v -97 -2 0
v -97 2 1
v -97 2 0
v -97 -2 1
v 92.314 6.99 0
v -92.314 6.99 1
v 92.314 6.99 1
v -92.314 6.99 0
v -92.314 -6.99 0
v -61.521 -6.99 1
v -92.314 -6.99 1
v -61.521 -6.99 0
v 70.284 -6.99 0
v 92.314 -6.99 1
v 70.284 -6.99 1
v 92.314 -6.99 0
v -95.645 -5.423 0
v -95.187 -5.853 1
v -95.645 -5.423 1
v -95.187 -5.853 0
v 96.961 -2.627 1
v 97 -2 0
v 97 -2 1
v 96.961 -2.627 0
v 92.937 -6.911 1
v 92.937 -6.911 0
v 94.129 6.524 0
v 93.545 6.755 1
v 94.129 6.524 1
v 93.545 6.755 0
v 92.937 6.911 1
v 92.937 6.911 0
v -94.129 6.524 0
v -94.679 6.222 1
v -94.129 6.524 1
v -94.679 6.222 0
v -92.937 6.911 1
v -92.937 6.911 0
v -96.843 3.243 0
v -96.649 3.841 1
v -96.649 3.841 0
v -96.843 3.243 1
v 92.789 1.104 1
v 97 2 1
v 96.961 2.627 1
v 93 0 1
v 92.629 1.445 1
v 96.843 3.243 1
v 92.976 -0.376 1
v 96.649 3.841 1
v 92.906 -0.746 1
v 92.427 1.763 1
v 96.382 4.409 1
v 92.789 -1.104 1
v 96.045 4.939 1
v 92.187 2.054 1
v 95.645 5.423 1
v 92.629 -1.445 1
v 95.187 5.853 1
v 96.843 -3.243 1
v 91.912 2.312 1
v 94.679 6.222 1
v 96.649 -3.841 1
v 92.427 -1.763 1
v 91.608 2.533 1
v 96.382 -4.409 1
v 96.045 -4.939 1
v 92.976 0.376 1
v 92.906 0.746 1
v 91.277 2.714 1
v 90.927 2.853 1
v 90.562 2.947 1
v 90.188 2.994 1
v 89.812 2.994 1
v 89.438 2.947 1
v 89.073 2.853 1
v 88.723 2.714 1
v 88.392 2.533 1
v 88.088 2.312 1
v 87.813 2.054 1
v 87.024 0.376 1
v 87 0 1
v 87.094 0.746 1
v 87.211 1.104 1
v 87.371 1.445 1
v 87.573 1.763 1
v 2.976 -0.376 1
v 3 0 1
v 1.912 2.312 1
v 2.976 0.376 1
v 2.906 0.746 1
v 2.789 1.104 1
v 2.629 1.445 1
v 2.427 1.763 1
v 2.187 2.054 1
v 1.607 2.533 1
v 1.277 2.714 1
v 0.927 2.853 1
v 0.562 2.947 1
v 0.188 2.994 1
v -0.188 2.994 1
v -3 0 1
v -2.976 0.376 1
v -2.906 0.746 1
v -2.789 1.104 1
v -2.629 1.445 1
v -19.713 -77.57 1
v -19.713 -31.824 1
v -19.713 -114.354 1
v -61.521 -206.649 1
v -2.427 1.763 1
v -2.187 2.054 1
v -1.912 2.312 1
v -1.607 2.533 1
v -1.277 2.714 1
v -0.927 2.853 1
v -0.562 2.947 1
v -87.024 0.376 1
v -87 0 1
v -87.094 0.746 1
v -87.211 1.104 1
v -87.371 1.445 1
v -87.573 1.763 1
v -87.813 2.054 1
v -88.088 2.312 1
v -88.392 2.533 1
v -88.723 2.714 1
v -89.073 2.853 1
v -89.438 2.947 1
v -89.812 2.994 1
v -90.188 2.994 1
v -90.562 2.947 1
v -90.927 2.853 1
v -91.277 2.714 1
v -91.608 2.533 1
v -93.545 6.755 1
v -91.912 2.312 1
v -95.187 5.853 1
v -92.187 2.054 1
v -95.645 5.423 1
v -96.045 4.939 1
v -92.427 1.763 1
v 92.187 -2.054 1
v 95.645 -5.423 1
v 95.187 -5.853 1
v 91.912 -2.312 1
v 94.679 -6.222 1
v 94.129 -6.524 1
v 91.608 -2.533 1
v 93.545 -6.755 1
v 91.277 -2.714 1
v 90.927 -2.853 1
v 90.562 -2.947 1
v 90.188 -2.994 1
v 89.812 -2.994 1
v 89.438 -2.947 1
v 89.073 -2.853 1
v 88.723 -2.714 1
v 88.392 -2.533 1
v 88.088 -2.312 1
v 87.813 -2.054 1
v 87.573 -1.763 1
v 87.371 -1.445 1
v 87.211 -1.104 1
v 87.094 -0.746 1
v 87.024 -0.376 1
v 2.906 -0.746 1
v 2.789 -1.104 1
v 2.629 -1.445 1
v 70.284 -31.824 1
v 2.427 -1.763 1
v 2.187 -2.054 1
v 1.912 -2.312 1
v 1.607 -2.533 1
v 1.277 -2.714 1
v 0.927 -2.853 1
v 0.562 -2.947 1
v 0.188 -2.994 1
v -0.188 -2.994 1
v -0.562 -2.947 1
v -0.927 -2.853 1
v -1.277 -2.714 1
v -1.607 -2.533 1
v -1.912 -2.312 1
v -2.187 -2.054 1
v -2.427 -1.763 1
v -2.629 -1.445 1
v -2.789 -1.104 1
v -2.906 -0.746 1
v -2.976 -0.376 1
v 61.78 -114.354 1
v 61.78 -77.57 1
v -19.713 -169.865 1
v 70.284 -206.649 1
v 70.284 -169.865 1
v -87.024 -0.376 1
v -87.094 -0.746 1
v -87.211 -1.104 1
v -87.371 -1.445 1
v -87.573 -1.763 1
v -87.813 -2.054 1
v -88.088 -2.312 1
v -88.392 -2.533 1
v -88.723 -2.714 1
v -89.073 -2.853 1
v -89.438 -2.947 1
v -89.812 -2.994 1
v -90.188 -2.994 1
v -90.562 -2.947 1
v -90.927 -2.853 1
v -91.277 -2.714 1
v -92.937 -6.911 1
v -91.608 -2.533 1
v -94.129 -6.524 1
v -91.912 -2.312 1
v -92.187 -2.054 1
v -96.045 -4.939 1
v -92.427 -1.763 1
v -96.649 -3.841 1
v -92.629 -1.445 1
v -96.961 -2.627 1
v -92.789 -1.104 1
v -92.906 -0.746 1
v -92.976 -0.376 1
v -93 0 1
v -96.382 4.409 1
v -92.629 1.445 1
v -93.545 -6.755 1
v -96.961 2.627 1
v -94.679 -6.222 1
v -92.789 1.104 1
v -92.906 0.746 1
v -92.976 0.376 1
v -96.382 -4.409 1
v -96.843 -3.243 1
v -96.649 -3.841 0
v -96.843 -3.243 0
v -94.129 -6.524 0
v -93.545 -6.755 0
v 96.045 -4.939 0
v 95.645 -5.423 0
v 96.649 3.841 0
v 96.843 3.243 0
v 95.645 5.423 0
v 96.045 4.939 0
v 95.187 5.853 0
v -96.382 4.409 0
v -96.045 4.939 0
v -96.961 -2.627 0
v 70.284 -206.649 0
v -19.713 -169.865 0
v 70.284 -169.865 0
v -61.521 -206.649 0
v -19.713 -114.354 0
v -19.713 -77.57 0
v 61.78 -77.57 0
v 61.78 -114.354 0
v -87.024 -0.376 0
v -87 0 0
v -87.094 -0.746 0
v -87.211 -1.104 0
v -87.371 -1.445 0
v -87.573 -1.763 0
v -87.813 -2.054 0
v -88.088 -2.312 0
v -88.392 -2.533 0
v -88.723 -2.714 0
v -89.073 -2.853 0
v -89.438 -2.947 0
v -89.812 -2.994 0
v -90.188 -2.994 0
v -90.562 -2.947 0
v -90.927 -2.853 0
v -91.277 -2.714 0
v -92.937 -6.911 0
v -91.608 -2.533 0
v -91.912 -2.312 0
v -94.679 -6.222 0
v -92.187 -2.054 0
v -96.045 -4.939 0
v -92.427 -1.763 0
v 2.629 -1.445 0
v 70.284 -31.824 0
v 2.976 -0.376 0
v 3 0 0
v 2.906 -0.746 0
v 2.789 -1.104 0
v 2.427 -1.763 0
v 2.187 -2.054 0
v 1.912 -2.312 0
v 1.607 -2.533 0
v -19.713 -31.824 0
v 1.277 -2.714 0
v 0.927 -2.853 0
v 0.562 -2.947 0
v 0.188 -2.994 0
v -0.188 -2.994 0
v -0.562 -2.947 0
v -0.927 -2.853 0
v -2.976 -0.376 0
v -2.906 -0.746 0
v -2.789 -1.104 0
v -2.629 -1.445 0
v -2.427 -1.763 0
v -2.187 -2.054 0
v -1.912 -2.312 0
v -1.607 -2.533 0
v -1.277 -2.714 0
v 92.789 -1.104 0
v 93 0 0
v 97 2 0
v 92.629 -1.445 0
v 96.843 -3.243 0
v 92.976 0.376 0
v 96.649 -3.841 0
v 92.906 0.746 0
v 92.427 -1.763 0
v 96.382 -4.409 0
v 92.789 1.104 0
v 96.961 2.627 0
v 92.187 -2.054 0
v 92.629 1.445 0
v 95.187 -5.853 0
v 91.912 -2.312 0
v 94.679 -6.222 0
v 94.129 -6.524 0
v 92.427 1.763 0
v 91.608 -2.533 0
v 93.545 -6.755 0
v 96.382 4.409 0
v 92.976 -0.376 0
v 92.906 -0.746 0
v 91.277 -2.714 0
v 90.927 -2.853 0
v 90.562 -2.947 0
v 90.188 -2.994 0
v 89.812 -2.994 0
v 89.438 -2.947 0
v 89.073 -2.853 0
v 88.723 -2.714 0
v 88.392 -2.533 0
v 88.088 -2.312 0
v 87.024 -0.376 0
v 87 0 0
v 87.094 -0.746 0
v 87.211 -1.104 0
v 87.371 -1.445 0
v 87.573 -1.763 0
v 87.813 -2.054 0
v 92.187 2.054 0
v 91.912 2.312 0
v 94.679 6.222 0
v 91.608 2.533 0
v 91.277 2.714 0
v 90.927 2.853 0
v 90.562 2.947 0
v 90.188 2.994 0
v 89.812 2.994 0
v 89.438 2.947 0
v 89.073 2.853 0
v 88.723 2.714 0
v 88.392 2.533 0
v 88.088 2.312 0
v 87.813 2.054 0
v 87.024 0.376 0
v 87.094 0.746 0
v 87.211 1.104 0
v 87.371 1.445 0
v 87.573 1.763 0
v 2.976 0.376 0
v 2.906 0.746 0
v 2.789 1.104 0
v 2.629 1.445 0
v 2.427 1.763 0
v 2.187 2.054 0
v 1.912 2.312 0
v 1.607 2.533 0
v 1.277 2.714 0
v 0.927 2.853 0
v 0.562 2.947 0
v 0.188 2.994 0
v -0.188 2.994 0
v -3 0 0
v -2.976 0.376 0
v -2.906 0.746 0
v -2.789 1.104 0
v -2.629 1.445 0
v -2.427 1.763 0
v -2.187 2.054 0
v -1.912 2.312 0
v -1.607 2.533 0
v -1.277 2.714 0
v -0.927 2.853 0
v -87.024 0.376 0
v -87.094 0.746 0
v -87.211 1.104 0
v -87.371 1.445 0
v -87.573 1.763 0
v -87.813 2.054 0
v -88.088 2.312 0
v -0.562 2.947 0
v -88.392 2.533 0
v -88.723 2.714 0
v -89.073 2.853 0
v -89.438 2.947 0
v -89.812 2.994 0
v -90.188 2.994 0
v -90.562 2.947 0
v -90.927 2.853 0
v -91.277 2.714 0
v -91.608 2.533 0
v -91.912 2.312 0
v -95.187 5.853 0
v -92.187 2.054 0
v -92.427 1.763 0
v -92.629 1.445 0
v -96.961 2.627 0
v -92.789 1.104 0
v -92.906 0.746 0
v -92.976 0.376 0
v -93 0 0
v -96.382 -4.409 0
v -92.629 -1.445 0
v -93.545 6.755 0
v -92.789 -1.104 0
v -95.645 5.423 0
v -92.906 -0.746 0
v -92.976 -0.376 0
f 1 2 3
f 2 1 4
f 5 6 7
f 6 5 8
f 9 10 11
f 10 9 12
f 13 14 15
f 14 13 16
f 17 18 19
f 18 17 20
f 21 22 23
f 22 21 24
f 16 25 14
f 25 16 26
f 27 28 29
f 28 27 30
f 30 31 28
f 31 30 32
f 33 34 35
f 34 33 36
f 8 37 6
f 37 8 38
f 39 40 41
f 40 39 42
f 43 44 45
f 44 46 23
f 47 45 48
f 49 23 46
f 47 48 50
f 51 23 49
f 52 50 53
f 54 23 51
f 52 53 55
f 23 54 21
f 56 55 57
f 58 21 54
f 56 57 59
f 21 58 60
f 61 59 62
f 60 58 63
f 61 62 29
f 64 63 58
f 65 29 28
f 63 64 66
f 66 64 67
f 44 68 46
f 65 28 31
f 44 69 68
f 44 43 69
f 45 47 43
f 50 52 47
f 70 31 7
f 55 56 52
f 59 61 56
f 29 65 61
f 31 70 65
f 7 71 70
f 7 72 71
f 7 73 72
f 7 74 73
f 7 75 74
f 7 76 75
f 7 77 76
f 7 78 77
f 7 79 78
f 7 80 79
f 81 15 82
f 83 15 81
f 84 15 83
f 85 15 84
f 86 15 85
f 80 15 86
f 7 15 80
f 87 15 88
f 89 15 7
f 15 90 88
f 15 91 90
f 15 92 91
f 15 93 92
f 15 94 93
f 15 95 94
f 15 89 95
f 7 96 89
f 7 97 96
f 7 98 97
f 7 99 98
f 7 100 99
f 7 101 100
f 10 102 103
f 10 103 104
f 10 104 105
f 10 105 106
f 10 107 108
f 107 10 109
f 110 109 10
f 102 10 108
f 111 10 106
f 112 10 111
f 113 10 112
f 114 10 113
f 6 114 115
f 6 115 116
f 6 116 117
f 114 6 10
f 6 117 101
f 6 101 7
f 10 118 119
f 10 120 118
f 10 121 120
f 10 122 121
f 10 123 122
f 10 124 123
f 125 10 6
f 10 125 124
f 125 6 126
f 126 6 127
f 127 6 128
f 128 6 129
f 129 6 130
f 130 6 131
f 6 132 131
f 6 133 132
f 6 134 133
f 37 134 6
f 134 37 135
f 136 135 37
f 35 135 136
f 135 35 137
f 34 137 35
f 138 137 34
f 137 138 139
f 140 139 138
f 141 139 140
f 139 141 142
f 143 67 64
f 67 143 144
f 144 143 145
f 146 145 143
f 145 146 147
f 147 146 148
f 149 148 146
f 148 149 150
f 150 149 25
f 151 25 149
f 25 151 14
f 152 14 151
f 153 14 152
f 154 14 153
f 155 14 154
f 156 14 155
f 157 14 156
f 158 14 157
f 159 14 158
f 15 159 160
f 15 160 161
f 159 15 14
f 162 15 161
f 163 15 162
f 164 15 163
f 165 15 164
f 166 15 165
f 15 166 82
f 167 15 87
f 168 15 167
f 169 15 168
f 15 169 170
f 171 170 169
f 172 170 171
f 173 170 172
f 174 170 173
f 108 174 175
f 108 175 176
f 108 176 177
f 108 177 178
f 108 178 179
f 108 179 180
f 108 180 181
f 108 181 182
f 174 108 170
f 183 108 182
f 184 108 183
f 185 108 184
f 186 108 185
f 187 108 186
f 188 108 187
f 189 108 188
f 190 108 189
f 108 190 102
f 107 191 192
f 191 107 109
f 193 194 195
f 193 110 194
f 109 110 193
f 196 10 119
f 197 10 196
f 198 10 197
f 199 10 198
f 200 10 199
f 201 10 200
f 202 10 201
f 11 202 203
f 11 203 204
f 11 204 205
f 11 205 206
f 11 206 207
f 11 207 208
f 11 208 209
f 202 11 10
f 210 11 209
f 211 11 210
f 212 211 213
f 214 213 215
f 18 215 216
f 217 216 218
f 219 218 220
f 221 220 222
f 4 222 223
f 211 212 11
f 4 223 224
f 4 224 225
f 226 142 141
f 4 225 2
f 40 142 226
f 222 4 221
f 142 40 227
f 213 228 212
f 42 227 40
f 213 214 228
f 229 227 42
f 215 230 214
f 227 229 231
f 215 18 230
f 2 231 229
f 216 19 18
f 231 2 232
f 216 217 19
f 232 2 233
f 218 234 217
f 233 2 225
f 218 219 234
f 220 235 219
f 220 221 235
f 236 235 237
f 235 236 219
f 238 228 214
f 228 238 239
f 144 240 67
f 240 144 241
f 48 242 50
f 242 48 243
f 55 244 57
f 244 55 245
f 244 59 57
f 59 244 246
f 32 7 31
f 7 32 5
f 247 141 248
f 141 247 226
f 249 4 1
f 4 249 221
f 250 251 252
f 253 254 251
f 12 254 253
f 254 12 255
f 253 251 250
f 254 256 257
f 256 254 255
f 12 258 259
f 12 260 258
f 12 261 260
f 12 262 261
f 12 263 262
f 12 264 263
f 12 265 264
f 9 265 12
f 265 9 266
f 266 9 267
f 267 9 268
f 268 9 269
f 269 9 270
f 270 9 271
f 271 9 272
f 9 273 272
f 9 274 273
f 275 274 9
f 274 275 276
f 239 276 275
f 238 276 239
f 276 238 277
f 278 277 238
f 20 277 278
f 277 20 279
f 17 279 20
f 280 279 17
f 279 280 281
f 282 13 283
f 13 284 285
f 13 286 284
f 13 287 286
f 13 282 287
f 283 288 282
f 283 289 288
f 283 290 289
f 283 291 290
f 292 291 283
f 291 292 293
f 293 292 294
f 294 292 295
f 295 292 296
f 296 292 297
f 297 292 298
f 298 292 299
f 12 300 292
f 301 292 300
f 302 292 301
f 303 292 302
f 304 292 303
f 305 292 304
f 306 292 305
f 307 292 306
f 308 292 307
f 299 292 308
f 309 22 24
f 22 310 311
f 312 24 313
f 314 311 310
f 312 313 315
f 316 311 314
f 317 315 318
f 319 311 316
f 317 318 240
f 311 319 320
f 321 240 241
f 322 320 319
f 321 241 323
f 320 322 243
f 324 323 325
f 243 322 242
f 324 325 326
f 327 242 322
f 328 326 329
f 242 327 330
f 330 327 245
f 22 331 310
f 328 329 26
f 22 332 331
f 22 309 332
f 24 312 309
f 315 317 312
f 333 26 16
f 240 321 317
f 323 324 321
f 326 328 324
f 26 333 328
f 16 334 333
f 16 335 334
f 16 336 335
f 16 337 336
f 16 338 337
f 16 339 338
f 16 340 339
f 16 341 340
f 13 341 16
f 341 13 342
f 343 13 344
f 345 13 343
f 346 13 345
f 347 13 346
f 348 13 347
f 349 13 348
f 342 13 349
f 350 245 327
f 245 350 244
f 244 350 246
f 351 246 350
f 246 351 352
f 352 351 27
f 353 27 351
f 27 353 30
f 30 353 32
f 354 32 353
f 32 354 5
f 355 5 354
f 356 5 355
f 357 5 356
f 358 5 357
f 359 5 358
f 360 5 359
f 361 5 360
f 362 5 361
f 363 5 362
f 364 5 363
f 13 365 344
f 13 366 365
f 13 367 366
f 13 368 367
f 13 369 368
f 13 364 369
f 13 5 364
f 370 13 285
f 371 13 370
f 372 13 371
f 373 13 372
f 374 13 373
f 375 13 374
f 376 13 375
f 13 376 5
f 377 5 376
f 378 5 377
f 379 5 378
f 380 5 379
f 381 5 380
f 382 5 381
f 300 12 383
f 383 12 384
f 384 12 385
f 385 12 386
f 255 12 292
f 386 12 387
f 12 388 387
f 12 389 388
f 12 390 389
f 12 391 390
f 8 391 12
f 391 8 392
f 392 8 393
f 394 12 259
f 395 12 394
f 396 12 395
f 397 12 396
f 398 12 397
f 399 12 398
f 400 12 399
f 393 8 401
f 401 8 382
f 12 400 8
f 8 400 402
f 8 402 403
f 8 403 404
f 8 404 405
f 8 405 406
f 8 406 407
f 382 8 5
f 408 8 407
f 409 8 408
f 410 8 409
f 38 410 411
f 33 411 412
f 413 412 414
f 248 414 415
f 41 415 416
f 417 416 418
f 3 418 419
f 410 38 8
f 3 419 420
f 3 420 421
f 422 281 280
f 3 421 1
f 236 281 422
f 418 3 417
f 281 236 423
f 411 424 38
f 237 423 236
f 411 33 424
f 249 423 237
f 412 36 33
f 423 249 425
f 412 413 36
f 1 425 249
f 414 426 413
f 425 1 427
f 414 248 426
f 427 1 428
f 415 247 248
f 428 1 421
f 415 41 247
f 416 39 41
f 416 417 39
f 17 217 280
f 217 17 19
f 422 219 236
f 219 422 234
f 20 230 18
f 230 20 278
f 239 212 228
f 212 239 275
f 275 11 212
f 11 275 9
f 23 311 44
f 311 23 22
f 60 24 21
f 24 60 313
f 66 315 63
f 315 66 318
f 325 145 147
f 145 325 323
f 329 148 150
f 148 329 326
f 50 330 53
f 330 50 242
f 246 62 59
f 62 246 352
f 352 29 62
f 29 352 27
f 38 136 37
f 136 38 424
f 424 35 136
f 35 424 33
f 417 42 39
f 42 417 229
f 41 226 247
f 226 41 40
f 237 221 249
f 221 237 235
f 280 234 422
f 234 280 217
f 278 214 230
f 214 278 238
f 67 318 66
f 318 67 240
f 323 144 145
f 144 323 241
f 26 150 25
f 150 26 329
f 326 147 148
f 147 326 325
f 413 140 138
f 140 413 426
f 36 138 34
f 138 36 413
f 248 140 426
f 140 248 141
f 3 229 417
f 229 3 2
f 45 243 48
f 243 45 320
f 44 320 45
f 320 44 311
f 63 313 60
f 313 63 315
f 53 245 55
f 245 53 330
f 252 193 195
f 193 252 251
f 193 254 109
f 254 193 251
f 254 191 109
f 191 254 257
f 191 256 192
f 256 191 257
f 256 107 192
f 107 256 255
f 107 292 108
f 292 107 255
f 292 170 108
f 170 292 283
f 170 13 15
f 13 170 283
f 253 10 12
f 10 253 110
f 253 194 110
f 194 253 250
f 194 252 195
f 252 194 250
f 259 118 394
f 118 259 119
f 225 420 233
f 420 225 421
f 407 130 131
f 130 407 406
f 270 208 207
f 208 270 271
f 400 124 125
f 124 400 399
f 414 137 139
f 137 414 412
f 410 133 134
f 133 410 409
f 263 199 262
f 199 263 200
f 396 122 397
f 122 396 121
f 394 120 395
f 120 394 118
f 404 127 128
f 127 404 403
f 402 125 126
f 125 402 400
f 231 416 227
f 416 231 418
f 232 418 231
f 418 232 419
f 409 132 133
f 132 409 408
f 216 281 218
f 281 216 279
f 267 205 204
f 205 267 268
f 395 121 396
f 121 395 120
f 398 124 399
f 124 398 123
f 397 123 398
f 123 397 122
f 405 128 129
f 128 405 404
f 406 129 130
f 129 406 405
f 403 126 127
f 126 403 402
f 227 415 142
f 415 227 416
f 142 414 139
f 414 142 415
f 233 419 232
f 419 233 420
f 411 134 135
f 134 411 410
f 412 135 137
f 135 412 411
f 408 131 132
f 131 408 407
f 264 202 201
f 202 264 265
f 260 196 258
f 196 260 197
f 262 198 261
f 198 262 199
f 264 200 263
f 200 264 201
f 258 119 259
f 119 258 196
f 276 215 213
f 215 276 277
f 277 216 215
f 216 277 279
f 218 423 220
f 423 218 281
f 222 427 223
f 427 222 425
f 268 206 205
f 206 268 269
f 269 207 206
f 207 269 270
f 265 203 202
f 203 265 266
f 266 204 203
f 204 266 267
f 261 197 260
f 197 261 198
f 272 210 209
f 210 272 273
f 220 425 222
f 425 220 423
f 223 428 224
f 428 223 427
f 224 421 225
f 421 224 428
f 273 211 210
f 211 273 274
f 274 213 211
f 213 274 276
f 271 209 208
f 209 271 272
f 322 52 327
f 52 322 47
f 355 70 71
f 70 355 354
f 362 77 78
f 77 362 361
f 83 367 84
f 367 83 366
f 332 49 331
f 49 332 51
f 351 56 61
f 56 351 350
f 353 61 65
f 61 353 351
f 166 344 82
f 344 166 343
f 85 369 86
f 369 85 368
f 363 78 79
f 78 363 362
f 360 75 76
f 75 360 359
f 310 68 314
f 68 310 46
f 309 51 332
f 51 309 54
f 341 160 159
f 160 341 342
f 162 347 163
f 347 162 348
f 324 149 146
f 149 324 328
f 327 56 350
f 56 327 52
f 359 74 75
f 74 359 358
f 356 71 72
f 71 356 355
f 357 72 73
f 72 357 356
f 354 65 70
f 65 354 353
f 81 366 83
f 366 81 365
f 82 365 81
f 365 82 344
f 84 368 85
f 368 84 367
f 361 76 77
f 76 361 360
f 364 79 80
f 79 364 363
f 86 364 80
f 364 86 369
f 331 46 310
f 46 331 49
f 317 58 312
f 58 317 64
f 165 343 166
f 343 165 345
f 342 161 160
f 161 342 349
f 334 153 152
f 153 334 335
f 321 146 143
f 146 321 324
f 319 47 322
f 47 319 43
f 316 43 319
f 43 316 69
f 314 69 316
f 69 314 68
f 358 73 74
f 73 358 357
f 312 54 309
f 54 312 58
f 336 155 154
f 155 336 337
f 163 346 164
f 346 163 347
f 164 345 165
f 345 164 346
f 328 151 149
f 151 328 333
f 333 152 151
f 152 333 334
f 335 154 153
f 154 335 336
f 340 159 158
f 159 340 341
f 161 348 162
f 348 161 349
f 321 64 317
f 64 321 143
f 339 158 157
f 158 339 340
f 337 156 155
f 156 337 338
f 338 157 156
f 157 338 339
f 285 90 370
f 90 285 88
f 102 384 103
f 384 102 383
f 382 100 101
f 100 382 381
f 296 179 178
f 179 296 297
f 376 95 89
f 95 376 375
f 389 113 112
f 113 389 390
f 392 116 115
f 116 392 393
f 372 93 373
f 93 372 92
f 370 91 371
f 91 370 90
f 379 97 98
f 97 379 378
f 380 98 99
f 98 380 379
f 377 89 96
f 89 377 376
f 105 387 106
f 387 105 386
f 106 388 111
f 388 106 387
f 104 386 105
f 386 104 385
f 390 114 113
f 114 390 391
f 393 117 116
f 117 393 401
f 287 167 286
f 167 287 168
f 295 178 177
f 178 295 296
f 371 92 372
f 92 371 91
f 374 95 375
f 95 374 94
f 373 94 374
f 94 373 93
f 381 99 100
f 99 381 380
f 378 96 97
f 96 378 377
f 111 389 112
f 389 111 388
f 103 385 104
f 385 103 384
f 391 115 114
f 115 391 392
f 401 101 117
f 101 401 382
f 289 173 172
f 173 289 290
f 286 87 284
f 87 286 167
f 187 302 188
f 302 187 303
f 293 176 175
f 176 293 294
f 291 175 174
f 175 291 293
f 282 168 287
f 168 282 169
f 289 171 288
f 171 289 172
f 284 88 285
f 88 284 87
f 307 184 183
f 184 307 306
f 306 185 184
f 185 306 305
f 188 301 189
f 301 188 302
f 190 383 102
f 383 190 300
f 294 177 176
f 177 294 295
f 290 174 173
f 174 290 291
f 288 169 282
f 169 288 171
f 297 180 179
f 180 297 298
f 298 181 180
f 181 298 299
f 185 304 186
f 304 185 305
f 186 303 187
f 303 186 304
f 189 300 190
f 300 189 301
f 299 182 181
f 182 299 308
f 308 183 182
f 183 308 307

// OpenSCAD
$fn = 50;


difference() {
	union() {
		translate(v = [0, 0, 0]) {
			rotate(a = [0, 0, 0]) {
				hull() {
					translate(v = [-92.0000000000, 2.0000000000, 0]) {
						rotate(a = [0, 0, 0]) {
							translate(v = [0, 0, 0]) {
								rotate(a = [0, 0, 0]) {
									cylinder(h = 1, r = 5);
								}
							}
						}
					}
					translate(v = [92.0000000000, 2.0000000000, 0]) {
						rotate(a = [0, 0, 0]) {
							translate(v = [0, 0, 0]) {
								rotate(a = [0, 0, 0]) {
									cylinder(h = 1, r = 5);
								}
							}
						}
					}
					translate(v = [-92.0000000000, -2.0000000000, 0]) {
						rotate(a = [0, 0, 0]) {
							translate(v = [0, 0, 0]) {
								rotate(a = [0, 0, 0]) {
									cylinder(h = 1, r = 5);
								}
							}
						}
					}
					translate(v = [92.0000000000, -2.0000000000, 0]) {
						rotate(a = [0, 0, 0]) {
							translate(v = [0, 0, 0]) {
								rotate(a = [0, 0, 0]) {
									cylinder(h = 1, r = 5);
								}
							}
						}
					}
				}
			}
		}
		translate(v = [0, 0, 0]) {
			rotate(a = [0, 0, 0]) {
				linear_extrude(height = 1) {
					text(font = "DejaVu Sans Mono:style=Bold", halign = "center", size = 209.0000000000, text = "E", valign = "top");
				}
			}
		}
	}
	union() {
		translate(v = [-90.0000000000, 0.0000000000, -125.0000000000]) {
			rotate(a = [0, 0, 0]) {
				cylinder(h = 250, r = 3.0000000000);
			}
		}
		translate(v = [90.0000000000, 0.0000000000, -125.0000000000]) {
			rotate(a = [0, 0, 0]) {
				cylinder(h = 250, r = 3.0000000000);
			}
		}
		translate(v = [90.0000000000, 0.0000000000, -125.0000000000]) {
			rotate(a = [0, 0, 0]) {
				cylinder(h = 250, r = 3.0000000000);
			}
		}
		translate(v = [0, 0, -125.0000000000]) {
			rotate(a = [0, 0, 0]) {
				cylinder(h = 250, r = 3.0000000000);
			}
		}
	}
}
